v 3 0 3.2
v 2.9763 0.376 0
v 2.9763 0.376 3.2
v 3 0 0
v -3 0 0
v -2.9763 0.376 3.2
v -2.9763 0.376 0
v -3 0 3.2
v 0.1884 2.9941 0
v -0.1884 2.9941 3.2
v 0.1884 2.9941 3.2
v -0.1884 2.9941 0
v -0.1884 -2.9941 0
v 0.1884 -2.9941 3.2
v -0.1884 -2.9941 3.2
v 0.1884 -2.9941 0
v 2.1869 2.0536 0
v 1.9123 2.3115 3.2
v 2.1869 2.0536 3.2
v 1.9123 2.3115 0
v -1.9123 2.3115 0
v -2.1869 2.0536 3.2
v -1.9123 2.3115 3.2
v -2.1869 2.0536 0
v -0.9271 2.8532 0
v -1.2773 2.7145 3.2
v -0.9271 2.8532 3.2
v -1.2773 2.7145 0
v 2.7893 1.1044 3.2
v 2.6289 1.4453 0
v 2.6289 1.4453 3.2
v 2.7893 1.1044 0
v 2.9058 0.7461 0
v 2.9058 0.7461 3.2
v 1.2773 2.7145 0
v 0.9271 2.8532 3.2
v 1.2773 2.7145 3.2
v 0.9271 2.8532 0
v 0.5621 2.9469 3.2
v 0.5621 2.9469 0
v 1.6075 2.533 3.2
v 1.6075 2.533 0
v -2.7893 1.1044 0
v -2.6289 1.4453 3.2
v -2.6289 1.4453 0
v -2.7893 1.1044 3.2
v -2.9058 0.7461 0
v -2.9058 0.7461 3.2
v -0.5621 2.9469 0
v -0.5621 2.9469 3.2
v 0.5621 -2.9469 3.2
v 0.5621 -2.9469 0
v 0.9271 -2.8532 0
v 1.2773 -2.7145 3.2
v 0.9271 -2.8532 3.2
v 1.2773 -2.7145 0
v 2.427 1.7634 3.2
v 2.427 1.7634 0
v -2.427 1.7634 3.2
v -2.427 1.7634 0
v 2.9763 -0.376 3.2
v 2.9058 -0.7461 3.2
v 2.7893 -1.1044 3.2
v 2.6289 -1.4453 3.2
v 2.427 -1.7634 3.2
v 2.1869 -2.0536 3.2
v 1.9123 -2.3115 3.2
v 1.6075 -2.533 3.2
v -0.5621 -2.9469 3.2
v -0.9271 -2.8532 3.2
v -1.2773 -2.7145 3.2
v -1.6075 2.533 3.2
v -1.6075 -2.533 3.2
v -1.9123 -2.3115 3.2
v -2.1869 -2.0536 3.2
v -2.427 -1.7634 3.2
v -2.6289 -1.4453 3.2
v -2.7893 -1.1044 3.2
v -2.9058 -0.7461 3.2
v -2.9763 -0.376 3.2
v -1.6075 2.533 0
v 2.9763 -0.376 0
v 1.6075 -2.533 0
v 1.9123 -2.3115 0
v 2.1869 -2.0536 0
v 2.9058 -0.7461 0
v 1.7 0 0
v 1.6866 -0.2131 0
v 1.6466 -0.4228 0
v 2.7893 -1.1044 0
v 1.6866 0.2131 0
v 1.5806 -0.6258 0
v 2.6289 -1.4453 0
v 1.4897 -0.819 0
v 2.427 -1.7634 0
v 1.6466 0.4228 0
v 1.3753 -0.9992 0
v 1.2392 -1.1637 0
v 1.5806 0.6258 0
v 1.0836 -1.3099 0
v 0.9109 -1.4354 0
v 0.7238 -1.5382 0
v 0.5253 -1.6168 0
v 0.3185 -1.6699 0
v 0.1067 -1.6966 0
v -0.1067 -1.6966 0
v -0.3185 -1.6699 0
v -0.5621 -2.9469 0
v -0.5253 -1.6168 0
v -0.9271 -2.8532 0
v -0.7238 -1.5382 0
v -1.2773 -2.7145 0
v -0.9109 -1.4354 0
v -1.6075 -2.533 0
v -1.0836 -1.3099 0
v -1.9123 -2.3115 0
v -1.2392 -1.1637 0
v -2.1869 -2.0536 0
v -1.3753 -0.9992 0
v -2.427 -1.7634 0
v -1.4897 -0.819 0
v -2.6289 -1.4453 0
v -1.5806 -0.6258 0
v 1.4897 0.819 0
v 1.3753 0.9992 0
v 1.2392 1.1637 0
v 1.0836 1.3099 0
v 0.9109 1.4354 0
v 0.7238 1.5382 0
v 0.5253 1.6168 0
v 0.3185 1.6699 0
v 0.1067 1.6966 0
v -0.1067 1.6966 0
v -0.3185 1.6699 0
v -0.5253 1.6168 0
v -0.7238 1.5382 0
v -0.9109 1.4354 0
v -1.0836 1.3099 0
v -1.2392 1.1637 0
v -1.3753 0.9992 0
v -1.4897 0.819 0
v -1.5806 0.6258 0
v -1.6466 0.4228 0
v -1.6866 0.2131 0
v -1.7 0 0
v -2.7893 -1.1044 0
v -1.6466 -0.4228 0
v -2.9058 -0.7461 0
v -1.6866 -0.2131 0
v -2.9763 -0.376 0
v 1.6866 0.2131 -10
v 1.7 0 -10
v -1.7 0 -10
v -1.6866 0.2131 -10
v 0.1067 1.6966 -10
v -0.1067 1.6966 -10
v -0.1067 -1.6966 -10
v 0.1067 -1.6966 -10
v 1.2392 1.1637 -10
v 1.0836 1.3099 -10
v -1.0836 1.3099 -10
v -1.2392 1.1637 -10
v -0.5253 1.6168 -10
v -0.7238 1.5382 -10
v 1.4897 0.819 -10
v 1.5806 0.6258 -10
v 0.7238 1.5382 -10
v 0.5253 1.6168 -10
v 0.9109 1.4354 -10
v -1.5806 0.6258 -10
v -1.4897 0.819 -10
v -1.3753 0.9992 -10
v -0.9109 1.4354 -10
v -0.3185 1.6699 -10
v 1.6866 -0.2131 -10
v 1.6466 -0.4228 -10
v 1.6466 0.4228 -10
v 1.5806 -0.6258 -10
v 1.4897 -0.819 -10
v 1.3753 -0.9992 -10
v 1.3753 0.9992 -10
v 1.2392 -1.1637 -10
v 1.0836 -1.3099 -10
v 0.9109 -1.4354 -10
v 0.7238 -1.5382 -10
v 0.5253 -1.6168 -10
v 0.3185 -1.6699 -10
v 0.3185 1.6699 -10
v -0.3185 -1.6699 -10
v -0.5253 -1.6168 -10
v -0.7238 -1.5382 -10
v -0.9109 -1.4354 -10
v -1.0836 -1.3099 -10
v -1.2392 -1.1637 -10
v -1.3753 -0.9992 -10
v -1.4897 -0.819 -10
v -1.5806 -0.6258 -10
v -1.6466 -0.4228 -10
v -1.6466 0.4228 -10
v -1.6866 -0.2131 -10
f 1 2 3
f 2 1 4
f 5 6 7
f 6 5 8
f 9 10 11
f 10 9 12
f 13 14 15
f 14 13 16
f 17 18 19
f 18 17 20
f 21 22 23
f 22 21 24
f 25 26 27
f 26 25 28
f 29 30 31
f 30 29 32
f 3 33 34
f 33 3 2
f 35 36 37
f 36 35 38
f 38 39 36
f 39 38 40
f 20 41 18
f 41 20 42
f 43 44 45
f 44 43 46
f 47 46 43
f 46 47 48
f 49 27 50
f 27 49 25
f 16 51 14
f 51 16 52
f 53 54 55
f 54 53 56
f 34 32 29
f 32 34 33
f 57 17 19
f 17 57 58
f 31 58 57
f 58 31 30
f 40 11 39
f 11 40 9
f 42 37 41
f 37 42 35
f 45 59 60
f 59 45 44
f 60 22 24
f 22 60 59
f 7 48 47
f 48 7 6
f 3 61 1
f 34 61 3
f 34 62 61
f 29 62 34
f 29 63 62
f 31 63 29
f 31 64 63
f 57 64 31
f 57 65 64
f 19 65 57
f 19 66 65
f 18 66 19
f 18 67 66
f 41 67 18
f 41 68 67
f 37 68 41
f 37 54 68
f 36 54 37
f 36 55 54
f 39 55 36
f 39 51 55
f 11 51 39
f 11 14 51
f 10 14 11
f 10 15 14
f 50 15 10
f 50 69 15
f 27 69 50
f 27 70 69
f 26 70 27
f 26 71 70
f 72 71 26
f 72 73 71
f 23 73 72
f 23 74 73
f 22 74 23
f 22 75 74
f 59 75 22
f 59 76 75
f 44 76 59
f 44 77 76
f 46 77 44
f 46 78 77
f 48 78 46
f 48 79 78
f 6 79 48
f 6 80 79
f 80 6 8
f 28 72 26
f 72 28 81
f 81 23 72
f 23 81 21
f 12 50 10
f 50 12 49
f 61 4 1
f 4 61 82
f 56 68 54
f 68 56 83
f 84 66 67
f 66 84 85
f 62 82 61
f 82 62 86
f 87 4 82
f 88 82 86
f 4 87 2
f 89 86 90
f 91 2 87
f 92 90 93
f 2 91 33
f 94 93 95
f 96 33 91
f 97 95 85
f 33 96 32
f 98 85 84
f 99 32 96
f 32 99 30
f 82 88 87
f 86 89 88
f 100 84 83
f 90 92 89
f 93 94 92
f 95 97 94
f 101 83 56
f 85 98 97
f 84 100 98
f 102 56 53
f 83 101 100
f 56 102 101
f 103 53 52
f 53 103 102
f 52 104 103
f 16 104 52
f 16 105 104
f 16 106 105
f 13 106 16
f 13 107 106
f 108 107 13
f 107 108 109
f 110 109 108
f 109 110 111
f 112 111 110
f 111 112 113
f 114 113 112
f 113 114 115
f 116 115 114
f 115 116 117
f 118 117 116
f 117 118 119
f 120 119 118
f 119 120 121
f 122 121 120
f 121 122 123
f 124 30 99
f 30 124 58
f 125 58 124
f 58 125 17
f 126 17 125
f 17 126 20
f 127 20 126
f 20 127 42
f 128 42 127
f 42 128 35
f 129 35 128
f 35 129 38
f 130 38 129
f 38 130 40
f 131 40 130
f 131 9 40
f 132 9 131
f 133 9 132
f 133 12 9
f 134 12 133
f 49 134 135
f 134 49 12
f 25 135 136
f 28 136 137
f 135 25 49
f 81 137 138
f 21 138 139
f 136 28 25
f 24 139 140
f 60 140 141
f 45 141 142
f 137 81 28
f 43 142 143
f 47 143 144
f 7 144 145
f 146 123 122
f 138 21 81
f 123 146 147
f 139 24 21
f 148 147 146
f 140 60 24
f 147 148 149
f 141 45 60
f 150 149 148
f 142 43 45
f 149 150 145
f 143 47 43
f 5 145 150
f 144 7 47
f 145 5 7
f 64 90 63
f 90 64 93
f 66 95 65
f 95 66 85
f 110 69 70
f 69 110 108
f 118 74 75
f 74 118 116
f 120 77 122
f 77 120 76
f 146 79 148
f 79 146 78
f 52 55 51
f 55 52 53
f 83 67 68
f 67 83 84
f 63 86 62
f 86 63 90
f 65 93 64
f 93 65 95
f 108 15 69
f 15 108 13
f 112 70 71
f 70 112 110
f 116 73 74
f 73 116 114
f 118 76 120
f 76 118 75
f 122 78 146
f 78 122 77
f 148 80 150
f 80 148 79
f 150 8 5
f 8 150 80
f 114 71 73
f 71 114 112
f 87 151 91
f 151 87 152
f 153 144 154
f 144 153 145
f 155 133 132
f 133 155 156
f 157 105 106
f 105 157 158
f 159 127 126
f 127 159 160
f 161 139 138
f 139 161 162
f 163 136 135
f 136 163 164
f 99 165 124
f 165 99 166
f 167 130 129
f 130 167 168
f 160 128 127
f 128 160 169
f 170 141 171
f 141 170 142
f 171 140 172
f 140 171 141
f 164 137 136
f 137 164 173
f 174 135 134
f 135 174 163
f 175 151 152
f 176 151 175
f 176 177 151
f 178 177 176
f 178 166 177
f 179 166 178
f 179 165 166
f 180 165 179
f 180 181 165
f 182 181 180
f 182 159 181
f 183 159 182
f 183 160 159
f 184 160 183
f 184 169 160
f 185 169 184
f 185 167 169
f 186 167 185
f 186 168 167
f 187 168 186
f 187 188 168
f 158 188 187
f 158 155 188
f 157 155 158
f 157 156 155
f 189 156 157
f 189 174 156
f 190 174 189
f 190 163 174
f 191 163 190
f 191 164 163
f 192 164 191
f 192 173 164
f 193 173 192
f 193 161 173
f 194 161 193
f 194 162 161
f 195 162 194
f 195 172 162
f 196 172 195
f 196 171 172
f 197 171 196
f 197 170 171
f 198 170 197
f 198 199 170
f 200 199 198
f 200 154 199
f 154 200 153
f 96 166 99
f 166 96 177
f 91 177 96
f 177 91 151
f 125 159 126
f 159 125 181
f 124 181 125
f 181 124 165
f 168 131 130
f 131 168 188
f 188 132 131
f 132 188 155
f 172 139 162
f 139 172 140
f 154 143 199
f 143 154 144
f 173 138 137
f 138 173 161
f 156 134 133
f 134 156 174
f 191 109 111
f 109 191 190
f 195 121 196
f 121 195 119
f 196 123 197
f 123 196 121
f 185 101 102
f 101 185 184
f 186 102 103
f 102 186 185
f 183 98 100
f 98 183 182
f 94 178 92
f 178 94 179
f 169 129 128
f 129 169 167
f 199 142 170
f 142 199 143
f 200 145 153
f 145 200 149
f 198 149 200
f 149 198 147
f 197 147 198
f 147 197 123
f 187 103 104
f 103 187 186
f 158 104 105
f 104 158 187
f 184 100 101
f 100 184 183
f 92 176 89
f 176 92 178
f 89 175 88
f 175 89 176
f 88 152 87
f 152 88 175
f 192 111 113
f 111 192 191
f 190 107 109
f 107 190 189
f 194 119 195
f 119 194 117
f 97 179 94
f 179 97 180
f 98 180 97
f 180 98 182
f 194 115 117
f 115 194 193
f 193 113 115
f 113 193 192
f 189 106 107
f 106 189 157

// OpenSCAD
$fn = 50;


difference() {
	union() {
		translate(v = [0, 0, 0]) {
			rotate(a = [0, 0, 0]) {
				cylinder(h = 3.2000000000, r = 3.0000000000);
			}
		}
		translate(v = [0, 0, -10]) {
			rotate(a = [0, 0, 0]) {
				cylinder(h = 10, r = 1.7000000000);
			}
		}
	}
	union();
}
